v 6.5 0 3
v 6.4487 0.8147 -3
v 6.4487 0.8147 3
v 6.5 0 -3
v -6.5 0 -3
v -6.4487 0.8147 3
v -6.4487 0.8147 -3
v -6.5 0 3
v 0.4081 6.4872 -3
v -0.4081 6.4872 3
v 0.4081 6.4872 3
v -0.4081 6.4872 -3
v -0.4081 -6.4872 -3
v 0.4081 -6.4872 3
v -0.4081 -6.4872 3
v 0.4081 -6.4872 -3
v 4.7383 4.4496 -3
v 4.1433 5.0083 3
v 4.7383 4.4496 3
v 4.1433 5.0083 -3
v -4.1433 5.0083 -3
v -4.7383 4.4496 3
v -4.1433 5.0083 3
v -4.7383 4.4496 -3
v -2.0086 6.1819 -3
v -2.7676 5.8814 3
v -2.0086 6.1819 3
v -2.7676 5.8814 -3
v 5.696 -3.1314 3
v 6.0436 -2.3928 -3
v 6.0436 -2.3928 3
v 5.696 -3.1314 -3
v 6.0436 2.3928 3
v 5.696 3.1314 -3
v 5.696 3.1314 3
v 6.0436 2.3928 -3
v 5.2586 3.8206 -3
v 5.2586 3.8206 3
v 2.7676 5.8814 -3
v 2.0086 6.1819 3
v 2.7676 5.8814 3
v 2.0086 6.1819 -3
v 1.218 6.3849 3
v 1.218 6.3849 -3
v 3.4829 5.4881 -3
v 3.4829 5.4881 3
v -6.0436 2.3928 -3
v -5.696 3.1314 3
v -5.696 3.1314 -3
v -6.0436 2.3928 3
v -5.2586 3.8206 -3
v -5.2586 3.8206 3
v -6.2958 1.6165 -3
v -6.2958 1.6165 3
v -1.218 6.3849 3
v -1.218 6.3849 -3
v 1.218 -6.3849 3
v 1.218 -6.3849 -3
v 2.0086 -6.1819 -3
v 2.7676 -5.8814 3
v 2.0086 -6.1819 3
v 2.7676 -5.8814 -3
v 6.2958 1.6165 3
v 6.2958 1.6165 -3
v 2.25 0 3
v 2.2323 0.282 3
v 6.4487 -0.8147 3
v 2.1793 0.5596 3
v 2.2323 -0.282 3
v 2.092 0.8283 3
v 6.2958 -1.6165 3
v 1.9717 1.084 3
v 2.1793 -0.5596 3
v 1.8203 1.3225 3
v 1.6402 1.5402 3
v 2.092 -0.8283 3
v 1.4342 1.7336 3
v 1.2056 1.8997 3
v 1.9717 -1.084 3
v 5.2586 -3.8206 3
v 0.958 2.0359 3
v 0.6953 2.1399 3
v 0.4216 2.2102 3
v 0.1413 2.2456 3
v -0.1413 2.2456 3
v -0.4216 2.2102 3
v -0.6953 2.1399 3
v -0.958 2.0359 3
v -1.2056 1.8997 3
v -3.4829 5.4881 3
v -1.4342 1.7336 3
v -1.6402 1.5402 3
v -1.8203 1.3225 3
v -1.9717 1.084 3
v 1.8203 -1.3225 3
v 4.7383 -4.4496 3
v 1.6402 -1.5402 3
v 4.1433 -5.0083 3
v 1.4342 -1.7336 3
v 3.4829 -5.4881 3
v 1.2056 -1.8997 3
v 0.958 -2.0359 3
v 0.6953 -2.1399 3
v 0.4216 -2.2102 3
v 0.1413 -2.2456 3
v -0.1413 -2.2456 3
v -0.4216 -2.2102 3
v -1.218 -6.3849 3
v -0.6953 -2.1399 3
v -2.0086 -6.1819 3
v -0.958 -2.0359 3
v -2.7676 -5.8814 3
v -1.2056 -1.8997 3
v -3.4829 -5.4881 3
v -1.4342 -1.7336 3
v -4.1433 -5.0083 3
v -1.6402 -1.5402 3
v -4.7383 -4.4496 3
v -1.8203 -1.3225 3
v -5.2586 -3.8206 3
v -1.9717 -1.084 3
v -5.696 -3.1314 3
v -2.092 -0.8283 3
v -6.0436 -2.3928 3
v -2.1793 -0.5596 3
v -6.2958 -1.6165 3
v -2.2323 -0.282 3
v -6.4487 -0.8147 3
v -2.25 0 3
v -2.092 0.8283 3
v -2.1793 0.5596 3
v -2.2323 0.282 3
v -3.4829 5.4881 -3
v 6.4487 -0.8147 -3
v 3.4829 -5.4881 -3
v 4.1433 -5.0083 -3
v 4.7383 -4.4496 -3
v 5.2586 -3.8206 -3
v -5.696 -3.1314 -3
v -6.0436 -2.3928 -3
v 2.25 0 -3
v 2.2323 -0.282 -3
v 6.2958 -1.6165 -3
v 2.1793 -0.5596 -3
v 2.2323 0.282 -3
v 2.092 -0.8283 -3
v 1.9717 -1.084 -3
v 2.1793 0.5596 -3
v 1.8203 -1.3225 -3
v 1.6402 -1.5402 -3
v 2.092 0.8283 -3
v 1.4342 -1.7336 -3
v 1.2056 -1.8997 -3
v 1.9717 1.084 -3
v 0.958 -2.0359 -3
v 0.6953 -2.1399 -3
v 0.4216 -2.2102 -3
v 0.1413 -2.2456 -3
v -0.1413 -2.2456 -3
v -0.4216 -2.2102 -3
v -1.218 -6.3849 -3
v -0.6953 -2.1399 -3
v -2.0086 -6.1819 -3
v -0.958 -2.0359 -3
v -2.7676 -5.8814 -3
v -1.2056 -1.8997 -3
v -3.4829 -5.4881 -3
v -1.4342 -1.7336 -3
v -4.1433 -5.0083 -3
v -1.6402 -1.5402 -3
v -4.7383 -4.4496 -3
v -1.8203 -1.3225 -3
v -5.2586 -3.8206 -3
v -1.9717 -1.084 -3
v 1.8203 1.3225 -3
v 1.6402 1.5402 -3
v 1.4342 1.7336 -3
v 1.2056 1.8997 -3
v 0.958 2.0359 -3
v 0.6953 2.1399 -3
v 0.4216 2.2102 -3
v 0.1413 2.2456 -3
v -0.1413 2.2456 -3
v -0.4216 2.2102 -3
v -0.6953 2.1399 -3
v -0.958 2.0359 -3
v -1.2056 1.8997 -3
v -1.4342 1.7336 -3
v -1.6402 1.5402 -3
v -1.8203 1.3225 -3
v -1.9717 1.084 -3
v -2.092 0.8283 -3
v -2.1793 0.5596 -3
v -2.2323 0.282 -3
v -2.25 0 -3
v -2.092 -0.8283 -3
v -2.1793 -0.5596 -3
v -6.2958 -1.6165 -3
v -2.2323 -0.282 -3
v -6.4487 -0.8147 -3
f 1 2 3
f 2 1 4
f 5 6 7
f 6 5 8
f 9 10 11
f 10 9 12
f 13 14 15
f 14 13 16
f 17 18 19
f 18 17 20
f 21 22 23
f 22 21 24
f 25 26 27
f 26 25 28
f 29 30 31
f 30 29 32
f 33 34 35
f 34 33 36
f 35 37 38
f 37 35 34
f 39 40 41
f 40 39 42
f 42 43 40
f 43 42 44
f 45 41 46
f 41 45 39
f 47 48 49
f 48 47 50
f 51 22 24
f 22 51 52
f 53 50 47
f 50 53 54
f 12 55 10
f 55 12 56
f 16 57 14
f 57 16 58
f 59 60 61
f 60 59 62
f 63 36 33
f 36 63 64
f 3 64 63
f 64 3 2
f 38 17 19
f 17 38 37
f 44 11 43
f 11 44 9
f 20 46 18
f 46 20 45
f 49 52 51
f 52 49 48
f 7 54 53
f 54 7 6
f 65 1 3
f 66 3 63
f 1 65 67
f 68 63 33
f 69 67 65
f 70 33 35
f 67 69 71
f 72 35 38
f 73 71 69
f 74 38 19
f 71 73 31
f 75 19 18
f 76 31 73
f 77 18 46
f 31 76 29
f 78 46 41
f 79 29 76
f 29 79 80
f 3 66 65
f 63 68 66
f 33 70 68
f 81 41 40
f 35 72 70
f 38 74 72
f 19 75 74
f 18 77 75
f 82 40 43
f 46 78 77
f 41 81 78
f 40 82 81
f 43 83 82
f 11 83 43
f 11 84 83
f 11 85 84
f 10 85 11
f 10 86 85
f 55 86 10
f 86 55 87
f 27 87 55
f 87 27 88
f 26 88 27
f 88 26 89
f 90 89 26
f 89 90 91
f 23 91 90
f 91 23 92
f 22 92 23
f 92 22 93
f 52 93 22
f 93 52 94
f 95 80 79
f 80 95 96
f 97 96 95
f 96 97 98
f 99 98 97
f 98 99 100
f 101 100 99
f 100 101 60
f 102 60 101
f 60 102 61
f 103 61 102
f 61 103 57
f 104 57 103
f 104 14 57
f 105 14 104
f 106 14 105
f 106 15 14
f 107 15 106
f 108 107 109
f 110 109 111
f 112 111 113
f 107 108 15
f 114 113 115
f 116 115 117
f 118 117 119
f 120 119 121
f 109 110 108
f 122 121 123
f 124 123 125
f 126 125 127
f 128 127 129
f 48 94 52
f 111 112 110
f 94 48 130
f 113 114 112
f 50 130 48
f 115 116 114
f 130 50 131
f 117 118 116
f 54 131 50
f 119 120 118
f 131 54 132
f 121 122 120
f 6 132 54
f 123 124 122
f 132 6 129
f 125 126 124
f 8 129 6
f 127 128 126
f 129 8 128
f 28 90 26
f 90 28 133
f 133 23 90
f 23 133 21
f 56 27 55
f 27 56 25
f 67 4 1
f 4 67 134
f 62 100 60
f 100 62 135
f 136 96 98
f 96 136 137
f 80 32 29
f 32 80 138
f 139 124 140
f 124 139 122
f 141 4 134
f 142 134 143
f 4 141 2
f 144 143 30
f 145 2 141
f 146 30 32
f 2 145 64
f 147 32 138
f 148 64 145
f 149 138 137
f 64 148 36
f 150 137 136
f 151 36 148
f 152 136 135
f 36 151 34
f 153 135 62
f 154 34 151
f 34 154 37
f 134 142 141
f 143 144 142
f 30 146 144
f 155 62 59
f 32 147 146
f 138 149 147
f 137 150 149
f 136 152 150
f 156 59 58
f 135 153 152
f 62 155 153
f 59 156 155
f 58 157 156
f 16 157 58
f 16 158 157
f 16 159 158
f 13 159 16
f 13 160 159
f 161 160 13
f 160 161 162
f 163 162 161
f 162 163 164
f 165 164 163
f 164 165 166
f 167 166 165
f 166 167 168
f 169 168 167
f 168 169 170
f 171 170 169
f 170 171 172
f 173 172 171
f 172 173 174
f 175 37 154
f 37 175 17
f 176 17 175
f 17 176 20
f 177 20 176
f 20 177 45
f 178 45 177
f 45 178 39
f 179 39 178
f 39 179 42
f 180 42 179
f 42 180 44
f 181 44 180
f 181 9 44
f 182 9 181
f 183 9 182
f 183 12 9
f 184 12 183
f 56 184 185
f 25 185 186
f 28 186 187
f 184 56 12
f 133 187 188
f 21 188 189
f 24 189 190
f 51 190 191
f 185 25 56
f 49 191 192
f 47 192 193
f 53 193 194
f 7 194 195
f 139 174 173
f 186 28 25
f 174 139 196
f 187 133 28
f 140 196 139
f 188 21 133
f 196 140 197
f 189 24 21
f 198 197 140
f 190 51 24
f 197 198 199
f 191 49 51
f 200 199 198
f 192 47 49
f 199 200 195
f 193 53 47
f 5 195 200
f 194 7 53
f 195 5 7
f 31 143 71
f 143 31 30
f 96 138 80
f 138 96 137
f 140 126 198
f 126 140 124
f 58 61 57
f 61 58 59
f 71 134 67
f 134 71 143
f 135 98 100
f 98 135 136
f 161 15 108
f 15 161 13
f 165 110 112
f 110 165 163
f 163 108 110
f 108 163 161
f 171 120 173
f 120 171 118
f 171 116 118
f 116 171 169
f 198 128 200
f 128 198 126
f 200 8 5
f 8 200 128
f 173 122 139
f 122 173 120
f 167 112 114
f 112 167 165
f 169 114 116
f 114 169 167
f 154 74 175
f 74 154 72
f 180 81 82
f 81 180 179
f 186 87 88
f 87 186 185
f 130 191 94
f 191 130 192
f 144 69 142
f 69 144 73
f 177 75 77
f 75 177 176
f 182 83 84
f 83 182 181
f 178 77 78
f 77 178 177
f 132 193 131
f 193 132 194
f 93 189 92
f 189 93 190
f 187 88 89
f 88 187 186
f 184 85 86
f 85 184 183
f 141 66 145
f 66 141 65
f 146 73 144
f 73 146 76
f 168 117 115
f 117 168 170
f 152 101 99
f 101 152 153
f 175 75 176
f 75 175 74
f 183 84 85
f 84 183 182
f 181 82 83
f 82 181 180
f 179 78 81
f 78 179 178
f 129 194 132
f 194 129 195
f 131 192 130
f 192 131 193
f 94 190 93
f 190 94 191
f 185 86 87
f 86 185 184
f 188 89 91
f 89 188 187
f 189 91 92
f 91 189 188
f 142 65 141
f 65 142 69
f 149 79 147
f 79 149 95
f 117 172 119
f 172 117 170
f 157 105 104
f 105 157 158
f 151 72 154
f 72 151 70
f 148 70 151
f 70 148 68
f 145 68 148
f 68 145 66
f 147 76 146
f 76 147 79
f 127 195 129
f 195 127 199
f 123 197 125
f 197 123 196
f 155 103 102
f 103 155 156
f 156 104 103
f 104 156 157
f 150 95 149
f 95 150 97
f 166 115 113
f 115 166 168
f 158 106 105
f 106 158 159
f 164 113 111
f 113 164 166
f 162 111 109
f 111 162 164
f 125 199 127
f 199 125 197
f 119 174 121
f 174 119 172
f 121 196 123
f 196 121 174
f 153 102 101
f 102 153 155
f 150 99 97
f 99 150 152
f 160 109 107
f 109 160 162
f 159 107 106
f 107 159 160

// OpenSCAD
$fn = 50;


difference() {
	union() {
		translate(v = [0, 0, -3.0000000000]) {
			cylinder(h = 6, r = 6.5000000000);
		}
	}
	union() {
		translate(v = [0, 0, -100.0000000000]) {
			cylinder(h = 200, r = 2.2500000000);
		}
	}
}
